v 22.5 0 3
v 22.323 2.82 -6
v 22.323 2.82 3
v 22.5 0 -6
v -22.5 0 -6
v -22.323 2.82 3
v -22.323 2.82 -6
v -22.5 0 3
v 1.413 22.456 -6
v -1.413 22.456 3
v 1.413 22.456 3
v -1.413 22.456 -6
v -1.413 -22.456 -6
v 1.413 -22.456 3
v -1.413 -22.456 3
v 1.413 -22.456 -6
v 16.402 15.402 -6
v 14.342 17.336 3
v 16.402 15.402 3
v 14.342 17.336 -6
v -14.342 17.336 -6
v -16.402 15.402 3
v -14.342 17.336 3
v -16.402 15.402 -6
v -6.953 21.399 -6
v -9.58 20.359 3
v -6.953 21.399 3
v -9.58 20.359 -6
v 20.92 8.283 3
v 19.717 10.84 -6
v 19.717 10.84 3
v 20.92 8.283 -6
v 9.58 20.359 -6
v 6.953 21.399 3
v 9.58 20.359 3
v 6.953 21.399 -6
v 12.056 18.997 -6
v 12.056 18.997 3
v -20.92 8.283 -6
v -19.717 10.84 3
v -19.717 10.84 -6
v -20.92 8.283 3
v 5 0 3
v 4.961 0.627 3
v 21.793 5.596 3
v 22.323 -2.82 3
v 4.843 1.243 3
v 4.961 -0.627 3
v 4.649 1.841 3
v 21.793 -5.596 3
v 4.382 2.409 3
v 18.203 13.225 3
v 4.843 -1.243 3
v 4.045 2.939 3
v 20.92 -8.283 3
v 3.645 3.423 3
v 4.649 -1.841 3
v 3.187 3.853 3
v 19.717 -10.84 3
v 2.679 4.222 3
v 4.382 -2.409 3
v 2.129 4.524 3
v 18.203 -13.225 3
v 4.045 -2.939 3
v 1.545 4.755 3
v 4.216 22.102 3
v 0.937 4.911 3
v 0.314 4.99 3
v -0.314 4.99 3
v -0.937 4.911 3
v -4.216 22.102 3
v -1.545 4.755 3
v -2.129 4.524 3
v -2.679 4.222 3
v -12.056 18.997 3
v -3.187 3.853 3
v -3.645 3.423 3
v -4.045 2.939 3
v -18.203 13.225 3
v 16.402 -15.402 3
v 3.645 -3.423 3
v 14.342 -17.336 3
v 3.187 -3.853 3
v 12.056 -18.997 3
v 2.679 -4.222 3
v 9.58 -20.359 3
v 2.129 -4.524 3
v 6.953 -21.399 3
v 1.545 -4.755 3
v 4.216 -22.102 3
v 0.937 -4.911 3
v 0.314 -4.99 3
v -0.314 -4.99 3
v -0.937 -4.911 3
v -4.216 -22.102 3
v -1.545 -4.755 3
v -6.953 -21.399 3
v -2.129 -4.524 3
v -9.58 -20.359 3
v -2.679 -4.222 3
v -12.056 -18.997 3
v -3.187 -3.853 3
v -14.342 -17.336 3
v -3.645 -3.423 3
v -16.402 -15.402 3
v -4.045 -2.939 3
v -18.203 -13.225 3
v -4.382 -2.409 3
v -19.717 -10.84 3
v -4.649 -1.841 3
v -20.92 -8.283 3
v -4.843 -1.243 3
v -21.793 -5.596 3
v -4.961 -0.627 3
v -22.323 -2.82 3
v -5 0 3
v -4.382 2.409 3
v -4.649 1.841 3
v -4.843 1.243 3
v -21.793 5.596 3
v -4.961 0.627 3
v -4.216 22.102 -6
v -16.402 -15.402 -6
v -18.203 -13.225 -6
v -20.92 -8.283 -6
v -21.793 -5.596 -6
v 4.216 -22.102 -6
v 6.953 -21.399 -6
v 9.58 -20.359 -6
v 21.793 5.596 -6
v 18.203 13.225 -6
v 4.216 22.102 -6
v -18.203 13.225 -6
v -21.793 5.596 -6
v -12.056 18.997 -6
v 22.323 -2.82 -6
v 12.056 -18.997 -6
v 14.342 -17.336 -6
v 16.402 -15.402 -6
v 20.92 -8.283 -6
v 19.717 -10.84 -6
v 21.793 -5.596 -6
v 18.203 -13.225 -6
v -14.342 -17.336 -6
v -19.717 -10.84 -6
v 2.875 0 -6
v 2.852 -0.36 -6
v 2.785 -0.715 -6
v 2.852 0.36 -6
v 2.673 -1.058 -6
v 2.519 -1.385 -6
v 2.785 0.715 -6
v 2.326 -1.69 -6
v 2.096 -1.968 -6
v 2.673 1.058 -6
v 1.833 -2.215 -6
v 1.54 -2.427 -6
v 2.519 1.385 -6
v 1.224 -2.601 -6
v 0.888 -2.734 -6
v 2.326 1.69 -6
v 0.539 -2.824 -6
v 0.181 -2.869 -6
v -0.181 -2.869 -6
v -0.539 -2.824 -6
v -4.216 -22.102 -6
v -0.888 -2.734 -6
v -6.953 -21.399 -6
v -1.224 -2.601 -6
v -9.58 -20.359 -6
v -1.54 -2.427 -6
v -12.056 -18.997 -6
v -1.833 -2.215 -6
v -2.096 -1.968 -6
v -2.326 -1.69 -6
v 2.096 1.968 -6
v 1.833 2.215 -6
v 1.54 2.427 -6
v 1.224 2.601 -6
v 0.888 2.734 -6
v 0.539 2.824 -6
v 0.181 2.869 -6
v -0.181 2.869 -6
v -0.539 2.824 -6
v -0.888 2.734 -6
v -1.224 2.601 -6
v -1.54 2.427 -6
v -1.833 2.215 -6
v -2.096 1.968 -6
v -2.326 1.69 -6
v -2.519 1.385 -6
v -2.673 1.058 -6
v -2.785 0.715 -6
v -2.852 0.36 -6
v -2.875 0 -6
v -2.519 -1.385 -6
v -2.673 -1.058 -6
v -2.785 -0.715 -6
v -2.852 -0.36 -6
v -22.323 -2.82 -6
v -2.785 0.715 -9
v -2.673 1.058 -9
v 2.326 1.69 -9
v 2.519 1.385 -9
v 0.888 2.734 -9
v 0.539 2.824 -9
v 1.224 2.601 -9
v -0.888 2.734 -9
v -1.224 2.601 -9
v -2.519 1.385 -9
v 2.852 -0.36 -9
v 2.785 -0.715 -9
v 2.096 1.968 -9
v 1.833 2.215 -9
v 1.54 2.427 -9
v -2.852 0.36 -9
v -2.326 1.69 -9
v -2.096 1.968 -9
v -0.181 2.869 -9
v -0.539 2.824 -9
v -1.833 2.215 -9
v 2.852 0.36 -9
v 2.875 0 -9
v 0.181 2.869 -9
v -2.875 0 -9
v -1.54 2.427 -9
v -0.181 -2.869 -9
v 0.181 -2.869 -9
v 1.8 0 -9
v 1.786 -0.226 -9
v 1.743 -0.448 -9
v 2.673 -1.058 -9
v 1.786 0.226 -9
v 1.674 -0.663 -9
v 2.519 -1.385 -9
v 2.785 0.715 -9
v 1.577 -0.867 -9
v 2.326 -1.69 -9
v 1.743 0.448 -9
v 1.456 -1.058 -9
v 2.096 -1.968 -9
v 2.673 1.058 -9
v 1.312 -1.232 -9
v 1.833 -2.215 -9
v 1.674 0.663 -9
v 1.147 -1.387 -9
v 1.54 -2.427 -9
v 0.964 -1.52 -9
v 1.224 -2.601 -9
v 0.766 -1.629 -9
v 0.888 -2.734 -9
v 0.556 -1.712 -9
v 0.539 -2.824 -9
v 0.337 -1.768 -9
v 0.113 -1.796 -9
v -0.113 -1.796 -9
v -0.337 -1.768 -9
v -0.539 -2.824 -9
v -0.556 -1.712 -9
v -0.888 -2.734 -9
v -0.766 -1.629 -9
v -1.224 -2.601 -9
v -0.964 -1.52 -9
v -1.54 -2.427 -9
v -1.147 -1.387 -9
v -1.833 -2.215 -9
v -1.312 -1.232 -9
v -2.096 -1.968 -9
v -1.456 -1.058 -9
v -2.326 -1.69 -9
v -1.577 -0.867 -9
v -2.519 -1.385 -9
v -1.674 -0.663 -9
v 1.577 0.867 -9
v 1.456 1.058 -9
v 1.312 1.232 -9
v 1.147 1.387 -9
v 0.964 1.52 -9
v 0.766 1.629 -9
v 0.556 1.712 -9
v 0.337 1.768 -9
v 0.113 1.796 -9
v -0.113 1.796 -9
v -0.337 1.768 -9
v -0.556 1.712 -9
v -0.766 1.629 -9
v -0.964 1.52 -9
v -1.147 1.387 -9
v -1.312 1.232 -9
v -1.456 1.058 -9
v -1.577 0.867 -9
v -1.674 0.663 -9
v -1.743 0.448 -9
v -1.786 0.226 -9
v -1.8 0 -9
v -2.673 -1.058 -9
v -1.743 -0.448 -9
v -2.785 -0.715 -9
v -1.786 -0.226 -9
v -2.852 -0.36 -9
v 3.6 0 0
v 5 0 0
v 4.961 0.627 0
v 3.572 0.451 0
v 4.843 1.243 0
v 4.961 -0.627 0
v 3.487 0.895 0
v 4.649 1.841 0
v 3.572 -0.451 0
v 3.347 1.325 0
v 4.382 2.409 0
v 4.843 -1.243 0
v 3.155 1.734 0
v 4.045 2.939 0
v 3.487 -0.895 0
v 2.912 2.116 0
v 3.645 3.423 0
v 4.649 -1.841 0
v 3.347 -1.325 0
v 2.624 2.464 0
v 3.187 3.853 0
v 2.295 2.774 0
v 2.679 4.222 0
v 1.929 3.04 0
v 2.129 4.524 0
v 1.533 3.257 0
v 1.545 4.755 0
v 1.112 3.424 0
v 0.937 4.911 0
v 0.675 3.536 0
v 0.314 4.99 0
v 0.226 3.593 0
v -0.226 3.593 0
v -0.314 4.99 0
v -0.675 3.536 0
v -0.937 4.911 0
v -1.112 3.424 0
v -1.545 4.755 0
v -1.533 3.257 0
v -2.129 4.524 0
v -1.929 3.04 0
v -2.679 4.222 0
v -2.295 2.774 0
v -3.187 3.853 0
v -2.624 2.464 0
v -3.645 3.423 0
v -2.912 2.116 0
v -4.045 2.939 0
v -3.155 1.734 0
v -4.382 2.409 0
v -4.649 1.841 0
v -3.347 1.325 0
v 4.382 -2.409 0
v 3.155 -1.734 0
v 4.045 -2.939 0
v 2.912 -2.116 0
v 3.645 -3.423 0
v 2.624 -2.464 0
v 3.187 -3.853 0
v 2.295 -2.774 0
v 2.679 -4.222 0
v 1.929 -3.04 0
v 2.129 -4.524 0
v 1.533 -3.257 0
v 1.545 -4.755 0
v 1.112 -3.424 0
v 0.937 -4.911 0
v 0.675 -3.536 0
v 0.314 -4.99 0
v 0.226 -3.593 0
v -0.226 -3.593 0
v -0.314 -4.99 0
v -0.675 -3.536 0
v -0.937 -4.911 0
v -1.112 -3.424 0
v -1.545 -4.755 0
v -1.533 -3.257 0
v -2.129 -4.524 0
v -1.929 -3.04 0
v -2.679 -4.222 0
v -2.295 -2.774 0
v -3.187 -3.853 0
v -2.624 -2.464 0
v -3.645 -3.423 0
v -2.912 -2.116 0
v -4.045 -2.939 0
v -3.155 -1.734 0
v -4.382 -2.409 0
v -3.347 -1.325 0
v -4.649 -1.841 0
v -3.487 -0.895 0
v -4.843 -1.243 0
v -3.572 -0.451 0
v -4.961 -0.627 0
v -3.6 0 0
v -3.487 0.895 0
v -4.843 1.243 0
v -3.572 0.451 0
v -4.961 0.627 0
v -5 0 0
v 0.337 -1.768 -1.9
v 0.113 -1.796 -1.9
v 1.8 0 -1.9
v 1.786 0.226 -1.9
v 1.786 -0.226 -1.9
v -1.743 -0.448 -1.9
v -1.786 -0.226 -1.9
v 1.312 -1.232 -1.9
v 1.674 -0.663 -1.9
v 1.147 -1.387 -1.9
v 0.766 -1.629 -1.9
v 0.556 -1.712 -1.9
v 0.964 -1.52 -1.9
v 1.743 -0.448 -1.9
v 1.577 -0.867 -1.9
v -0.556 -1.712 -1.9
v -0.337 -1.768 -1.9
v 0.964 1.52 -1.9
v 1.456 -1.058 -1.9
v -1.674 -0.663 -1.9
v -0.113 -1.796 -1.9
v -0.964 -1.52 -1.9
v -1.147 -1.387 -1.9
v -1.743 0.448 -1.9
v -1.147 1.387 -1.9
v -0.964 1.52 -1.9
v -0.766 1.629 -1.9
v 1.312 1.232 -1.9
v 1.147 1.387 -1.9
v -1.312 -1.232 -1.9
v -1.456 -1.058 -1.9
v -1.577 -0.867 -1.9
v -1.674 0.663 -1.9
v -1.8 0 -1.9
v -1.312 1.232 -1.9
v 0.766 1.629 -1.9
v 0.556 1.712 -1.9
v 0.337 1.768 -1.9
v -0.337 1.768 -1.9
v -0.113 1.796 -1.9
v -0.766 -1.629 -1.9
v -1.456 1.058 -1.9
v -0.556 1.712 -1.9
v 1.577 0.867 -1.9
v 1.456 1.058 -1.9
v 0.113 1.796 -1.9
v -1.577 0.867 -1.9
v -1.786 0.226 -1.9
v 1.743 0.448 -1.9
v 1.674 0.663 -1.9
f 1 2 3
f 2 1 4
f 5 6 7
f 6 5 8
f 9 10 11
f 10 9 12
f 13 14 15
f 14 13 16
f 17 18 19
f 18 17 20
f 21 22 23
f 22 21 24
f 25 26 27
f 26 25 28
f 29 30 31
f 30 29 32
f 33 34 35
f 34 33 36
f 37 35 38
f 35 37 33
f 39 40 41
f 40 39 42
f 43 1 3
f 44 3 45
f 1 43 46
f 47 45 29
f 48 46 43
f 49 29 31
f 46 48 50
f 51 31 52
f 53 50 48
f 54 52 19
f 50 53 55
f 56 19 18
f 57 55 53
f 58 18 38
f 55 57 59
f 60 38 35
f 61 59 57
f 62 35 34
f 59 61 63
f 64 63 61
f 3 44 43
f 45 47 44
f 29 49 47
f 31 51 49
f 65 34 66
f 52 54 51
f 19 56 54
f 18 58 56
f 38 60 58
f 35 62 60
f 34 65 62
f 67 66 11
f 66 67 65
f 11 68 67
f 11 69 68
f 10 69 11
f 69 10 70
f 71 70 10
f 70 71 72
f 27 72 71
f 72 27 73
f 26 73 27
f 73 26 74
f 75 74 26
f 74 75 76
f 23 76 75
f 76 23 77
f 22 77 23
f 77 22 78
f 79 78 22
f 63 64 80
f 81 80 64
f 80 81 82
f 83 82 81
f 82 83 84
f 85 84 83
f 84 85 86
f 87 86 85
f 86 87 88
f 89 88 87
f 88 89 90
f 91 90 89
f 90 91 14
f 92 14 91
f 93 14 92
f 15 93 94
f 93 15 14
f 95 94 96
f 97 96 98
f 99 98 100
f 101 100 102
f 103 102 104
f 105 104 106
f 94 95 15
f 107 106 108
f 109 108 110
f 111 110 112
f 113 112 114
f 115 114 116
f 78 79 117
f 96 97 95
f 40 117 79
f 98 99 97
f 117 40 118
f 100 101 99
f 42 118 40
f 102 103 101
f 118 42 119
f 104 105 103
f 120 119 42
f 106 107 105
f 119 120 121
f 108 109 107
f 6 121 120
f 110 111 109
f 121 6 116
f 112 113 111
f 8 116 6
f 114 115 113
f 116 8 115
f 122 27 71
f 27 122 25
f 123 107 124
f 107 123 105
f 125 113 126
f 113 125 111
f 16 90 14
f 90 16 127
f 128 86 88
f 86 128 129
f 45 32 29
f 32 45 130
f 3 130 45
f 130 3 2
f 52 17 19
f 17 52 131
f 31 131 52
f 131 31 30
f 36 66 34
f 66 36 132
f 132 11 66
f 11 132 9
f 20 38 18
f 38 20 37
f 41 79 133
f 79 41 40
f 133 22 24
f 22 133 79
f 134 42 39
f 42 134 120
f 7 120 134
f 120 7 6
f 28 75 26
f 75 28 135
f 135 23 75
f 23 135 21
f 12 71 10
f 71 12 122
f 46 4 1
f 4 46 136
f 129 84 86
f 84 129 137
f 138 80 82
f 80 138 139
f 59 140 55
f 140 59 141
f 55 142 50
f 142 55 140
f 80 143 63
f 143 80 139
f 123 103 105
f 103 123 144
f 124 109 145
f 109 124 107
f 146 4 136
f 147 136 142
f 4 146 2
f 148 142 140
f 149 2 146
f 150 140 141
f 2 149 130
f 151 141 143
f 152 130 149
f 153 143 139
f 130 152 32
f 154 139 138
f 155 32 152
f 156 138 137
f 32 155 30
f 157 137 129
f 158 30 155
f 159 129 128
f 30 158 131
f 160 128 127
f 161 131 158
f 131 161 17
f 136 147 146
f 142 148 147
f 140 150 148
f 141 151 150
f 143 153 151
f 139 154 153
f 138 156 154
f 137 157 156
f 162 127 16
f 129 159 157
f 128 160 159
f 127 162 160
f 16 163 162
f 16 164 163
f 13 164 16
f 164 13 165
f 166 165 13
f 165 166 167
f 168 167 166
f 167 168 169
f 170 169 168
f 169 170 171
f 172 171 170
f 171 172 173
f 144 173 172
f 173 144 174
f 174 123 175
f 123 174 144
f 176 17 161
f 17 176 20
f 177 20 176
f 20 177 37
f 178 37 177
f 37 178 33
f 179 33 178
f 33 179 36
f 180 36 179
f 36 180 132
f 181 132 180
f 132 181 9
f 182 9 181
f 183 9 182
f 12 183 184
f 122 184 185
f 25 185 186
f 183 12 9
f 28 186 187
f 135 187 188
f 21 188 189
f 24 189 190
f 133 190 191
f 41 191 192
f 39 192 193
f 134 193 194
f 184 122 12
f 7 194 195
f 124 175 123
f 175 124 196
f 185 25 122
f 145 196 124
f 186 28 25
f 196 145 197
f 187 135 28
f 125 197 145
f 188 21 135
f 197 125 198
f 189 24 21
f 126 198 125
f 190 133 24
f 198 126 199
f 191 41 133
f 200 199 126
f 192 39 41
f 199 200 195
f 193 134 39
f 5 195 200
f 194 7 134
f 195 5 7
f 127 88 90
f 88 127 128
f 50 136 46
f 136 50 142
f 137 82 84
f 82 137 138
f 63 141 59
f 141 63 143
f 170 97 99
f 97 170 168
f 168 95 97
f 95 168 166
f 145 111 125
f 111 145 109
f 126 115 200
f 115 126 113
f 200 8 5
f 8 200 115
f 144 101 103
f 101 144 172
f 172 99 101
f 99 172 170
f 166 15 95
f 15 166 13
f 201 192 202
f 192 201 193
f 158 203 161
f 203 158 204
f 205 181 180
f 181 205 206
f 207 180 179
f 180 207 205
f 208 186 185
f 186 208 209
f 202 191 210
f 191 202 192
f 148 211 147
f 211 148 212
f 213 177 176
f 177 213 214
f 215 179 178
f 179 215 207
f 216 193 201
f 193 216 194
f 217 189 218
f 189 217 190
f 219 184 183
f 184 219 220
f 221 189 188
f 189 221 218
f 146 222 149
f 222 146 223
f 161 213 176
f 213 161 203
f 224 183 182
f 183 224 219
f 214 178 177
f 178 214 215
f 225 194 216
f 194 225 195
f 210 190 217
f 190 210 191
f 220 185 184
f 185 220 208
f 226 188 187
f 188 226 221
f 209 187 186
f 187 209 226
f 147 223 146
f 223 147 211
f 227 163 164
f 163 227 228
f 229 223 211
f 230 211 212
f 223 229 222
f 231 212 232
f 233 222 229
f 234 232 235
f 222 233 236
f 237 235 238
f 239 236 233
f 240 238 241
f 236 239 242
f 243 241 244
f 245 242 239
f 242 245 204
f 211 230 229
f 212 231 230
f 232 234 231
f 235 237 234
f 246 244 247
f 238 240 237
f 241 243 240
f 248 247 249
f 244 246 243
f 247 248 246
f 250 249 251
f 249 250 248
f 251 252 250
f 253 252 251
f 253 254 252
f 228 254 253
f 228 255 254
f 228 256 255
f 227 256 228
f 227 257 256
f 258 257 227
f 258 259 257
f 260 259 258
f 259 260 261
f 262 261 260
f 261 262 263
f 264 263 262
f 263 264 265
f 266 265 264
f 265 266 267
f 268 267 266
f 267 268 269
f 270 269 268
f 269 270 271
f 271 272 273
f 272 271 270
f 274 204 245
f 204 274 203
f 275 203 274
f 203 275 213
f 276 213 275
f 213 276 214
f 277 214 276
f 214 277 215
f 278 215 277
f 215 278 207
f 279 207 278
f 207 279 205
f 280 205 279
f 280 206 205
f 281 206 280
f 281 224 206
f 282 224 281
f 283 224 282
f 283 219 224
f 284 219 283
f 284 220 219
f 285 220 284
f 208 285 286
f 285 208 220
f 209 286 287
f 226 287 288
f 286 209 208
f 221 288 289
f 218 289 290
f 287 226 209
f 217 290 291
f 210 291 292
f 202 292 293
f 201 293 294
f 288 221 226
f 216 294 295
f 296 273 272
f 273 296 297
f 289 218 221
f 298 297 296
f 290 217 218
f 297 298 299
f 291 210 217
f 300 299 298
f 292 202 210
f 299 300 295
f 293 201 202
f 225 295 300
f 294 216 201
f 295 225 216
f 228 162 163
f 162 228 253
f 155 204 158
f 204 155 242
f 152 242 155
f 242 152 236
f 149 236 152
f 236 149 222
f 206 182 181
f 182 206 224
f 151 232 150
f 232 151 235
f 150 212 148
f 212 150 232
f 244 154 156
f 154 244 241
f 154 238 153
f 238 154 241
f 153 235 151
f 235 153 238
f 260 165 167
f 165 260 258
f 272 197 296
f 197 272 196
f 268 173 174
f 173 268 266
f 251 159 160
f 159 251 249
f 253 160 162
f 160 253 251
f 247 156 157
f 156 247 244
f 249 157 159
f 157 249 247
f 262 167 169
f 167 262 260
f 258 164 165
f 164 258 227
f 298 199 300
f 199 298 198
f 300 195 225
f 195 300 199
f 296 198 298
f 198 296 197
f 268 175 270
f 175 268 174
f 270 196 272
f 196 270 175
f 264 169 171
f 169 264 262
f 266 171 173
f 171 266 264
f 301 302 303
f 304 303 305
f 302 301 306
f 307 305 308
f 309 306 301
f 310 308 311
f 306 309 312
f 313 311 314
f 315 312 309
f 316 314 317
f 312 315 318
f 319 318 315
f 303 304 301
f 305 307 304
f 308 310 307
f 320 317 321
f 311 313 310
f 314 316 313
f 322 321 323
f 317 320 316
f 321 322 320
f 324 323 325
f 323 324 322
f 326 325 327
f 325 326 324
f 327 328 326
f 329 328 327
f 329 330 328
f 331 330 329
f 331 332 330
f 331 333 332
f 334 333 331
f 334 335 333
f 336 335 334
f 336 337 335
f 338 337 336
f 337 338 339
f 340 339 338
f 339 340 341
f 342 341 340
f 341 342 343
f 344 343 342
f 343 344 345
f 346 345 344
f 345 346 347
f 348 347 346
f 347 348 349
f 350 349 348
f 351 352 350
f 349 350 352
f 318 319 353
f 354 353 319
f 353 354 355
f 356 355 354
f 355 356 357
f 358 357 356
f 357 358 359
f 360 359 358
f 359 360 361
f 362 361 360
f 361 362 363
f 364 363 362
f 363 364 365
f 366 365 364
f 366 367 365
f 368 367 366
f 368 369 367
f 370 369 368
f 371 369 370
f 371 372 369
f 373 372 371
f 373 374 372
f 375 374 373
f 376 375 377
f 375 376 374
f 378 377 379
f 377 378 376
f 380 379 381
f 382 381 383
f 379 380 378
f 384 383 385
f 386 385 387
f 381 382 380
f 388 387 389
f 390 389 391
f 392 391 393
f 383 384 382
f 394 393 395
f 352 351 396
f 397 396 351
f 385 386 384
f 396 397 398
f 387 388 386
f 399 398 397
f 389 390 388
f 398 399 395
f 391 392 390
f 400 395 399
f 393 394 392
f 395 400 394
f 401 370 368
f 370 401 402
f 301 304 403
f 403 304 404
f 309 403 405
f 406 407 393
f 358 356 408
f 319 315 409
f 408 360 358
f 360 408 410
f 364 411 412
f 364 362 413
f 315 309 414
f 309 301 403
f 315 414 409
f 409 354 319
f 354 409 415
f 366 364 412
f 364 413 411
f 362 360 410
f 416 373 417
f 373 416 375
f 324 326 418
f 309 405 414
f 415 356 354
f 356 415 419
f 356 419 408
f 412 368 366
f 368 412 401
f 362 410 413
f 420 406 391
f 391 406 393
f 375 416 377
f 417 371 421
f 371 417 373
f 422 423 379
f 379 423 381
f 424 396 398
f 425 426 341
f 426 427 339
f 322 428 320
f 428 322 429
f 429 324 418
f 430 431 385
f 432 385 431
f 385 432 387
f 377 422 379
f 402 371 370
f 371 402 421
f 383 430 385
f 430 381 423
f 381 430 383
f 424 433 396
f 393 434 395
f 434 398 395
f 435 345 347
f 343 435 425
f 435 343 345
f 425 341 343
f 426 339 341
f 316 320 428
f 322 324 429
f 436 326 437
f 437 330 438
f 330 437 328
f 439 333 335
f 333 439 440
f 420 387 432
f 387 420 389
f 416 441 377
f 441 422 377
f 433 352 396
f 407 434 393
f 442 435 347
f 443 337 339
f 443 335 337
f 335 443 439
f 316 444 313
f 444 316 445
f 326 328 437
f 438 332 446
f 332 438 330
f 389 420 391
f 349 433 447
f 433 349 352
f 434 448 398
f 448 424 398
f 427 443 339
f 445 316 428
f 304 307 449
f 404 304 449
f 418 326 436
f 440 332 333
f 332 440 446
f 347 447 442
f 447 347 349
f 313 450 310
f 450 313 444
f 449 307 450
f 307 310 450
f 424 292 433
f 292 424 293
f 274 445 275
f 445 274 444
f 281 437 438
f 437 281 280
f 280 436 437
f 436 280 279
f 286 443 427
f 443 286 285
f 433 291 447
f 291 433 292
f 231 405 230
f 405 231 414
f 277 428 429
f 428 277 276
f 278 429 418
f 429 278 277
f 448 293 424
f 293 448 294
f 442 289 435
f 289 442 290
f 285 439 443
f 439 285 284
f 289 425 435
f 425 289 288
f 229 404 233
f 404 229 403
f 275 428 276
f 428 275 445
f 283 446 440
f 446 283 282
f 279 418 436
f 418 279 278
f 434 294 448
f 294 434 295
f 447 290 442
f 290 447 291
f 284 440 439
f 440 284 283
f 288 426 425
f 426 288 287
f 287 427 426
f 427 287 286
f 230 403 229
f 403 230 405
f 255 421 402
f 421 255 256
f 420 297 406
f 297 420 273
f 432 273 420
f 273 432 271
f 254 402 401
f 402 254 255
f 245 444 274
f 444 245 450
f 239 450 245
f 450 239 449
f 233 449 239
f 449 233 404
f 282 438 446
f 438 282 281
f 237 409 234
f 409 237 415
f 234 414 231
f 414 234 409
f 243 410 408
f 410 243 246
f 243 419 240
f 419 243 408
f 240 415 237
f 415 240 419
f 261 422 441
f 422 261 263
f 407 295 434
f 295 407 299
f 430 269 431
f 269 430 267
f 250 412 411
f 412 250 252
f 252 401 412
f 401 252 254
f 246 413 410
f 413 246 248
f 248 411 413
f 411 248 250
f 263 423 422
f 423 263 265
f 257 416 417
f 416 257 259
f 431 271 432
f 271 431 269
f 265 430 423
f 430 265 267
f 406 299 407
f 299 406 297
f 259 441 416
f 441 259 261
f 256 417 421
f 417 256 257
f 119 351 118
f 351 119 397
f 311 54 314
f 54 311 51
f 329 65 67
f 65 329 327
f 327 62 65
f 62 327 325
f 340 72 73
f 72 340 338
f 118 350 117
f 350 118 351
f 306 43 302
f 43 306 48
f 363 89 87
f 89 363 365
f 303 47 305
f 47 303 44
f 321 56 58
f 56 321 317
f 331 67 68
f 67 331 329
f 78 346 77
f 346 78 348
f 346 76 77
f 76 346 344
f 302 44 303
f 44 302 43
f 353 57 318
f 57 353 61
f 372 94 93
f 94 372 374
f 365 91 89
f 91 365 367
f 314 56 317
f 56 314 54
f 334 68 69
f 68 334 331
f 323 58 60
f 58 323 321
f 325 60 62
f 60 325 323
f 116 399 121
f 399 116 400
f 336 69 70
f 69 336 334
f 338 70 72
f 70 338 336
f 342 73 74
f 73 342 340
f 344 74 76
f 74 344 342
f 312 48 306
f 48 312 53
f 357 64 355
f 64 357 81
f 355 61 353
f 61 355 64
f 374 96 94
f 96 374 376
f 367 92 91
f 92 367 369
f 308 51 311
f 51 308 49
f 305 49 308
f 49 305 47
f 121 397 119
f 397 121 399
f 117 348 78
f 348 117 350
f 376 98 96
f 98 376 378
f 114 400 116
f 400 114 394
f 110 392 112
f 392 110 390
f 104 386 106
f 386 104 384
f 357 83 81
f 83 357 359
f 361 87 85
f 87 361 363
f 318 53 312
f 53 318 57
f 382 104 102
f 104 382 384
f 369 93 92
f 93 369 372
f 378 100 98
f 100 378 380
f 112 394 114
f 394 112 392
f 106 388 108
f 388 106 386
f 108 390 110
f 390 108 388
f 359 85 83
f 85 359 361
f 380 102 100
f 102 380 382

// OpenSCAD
$fn = 50;


difference() {
	union() {
		translate(v = [0, 0, -6.0000000000]) {
			cylinder(h = 9, r = 22.5000000000);
		}
		#translate(v = [0, 0, -9.0000000000]) {
			cylinder(h = 9, r = 2.8750000000);
		}
	}
	union() {
		translate(v = [0, 0, 0]) {
			rotate(a = [0, 0, 0]) {
				difference() {
					union() {
						translate(v = [0, 0, -9.0000000000]) {
							cylinder(h = 9, r = 1.5000000000);
						}
						translate(v = [0, 0, -1.9000000000]) {
							cylinder(h = 1.9000000000, r1 = 1.8000000000, r2 = 3.6000000000);
						}
						translate(v = [0, 0, -9.0000000000]) {
							cylinder(h = 9, r = 1.8000000000);
						}
						translate(v = [0, 0, -9.0000000000]) {
							cylinder(h = 9, r = 1.5000000000);
						}
					}
					union();
				}
			}
		}
		#cylinder(h = 3, r = 5.0000000000);
	}
}
